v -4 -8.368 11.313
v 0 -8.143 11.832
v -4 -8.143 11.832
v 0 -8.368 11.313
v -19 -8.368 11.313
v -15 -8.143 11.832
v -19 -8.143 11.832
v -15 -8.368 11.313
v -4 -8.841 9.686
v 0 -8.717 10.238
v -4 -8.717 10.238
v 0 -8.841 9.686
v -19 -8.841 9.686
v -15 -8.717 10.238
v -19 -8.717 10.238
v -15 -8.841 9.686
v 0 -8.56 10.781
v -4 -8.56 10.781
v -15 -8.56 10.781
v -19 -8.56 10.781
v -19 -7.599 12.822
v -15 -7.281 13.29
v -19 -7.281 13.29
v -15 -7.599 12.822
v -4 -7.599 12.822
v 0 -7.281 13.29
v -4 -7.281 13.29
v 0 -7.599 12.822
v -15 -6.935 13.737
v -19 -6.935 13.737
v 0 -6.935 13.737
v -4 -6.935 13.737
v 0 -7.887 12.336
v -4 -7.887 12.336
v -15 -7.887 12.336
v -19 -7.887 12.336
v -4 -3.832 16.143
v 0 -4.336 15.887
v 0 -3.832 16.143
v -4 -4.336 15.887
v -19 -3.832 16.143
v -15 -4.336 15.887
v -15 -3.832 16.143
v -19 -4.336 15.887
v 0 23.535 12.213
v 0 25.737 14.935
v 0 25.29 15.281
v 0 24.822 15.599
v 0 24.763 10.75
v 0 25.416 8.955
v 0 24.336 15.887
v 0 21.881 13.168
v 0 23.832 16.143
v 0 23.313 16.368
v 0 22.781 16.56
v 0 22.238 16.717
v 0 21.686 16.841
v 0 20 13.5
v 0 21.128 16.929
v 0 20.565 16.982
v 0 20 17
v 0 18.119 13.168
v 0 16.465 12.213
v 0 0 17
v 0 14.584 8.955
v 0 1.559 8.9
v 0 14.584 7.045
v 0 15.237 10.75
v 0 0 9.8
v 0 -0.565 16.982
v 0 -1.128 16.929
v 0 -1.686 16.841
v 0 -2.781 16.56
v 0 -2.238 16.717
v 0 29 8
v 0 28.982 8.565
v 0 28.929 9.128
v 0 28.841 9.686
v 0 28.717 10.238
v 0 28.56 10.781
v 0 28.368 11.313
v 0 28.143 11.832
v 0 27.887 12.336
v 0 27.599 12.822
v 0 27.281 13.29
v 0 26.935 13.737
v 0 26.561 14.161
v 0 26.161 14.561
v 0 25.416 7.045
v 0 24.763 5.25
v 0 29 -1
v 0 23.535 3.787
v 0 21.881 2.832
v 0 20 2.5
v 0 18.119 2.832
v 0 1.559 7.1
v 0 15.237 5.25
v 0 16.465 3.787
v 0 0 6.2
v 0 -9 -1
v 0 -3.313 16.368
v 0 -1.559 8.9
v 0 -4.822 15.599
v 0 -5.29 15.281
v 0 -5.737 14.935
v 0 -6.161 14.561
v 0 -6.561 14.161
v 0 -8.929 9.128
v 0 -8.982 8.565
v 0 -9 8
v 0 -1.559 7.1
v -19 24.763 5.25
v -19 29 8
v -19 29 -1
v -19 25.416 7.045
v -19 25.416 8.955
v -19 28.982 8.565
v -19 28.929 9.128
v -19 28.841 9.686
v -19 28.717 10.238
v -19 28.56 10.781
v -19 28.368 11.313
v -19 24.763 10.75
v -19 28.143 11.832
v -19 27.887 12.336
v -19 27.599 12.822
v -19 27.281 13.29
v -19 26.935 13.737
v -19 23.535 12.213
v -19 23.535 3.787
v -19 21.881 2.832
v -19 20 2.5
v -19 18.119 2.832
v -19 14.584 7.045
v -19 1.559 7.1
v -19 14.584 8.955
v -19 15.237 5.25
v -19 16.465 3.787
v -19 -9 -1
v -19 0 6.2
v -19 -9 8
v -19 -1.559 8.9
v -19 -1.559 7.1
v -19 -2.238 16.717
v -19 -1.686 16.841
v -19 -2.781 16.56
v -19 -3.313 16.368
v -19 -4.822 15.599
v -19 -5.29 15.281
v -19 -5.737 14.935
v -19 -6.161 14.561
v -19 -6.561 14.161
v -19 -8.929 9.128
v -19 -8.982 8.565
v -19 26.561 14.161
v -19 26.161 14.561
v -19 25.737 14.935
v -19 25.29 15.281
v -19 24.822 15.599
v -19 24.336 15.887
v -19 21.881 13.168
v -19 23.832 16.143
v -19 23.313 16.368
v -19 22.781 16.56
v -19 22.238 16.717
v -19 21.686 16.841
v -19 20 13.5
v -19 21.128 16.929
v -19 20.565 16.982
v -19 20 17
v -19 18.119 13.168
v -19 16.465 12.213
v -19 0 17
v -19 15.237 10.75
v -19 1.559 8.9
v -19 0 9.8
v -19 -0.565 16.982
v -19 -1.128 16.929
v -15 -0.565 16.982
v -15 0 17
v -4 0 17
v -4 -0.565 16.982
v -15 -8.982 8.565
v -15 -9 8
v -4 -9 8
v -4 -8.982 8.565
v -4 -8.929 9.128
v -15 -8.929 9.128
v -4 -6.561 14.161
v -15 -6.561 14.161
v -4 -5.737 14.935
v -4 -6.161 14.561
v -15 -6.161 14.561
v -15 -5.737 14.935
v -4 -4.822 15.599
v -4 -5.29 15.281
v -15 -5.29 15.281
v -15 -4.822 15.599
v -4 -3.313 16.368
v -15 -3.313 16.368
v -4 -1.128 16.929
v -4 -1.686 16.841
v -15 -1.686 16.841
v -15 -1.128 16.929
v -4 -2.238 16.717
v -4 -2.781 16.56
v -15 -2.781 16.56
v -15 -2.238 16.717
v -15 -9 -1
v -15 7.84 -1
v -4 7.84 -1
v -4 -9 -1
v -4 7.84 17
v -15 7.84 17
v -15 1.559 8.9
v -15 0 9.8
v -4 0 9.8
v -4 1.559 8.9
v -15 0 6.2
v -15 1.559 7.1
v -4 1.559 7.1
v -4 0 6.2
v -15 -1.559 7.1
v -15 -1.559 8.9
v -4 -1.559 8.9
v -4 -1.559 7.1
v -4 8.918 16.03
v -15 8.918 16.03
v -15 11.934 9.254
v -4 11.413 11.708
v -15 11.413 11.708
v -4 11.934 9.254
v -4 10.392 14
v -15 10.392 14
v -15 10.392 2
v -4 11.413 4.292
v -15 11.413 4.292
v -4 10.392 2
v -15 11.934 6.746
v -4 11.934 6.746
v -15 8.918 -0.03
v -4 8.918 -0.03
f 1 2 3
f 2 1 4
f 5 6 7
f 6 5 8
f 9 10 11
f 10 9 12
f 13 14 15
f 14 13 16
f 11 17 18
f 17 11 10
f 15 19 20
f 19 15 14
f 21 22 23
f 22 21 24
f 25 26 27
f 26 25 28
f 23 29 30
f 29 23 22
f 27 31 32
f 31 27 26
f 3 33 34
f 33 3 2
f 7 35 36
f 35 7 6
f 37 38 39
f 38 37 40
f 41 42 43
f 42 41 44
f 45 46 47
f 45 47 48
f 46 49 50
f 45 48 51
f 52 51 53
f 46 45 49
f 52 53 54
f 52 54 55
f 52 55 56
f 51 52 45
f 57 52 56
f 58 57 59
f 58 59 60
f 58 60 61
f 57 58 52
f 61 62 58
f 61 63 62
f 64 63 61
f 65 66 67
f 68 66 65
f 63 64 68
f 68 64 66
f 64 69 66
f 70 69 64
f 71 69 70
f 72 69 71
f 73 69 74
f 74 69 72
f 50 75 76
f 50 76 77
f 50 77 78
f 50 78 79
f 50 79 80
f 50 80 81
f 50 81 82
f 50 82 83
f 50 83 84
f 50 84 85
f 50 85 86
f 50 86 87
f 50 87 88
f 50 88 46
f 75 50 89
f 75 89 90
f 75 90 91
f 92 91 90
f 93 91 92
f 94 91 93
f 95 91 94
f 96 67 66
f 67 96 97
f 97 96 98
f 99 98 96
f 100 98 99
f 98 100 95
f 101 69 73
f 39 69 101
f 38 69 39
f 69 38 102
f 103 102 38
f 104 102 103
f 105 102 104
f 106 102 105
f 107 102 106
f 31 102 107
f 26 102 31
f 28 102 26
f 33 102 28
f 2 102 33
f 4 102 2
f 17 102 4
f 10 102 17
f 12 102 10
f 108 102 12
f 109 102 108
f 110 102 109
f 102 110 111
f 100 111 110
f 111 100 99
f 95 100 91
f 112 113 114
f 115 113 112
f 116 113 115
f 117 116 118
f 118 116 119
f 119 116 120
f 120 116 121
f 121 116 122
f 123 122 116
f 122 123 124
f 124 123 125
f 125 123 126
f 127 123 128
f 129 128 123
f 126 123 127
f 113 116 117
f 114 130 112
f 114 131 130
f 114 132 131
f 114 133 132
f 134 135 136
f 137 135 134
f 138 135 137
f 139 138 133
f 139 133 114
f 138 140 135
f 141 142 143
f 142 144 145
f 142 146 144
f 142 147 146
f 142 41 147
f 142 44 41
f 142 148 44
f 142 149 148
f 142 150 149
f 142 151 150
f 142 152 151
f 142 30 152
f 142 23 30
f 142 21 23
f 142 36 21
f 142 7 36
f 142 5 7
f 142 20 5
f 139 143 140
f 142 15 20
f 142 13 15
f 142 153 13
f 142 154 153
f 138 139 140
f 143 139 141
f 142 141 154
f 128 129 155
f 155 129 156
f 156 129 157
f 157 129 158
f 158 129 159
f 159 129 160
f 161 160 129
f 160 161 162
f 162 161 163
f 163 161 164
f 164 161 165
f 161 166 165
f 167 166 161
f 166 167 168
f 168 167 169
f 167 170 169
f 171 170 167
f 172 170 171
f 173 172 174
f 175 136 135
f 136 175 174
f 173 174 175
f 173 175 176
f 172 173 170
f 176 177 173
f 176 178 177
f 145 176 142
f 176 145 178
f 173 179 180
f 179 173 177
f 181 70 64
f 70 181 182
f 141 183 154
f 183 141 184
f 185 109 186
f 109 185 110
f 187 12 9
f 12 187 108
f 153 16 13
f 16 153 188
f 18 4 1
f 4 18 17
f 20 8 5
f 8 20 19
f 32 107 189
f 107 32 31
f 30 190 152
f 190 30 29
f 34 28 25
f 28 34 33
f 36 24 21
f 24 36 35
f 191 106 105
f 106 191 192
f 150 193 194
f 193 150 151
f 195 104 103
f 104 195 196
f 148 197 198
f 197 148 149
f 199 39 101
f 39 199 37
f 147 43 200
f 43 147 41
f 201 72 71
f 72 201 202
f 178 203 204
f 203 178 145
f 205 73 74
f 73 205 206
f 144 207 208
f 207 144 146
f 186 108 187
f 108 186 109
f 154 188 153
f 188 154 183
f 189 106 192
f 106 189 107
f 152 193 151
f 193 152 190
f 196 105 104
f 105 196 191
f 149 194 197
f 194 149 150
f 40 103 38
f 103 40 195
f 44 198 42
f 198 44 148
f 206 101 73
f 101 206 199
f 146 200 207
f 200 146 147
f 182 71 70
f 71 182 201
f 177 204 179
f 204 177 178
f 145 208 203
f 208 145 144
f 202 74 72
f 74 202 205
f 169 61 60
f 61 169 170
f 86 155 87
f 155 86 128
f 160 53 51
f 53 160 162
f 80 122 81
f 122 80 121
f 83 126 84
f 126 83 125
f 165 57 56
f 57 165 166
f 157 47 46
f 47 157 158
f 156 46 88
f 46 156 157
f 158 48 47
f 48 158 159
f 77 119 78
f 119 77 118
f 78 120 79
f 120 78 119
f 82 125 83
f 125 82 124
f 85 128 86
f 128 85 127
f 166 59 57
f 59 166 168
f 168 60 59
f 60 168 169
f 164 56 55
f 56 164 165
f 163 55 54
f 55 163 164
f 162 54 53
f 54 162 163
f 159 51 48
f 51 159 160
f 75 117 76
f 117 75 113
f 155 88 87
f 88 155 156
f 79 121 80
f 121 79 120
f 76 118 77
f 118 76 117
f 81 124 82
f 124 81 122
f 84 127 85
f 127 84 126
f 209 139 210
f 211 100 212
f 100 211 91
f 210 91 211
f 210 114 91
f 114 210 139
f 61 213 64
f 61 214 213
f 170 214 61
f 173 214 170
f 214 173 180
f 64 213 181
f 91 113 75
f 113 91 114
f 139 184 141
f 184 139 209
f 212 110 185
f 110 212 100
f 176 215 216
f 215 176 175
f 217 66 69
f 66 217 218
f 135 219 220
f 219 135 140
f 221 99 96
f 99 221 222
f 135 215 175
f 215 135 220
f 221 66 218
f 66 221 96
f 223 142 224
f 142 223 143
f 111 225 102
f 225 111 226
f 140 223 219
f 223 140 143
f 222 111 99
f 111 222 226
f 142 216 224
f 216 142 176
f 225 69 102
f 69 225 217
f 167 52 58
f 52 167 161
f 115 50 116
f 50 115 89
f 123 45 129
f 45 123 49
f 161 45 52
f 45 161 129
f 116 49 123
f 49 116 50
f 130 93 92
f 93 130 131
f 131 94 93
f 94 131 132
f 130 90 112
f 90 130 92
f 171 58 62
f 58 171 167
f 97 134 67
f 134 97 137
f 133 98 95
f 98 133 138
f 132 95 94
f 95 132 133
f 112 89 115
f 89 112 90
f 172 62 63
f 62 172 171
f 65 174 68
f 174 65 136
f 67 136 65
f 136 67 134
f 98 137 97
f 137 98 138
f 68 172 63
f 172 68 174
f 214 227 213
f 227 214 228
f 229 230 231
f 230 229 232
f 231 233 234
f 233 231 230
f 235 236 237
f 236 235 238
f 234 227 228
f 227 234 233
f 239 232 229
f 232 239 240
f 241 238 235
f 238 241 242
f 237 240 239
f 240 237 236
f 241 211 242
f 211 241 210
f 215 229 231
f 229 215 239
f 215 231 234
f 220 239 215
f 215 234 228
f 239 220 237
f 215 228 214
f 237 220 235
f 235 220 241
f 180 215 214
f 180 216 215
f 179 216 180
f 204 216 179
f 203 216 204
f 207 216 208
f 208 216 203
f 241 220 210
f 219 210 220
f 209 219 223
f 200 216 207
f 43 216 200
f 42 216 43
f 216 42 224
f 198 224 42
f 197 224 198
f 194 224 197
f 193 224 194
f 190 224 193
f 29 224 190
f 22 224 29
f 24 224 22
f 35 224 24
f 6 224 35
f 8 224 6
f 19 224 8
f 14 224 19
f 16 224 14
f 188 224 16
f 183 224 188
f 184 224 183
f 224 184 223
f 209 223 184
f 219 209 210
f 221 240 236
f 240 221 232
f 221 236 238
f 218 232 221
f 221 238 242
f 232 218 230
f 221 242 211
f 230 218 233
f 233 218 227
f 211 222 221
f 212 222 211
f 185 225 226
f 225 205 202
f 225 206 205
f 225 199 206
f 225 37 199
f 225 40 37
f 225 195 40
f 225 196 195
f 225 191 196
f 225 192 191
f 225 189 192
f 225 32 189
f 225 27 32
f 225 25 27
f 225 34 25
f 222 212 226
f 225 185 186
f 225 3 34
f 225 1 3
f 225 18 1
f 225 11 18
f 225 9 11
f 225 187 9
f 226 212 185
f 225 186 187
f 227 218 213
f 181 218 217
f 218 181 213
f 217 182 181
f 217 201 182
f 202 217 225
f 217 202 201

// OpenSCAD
// PRUSA iteration3
// Y idler
// GNU GPL v3
// Josef Průša <iam@josefprusa.cz> and contributors
// http://www.reprap.org/wiki/Prusa_Mendel
// http://prusamendel.org


module y_idler_base(){
 translate(v = [0,0,0]) cylinder(h = 19, r=9, $fn=100);
 translate(v = [0,20,0]) cylinder(h = 19, r=9, $fn=100);
 translate(v = [0,10,9.5]) cube(size = [18,20,19], center=true);
 translate(v = [-4.5,10,9.5]) cube(size = [9,16+22,19], center=true);
}

module y_idler_holes(){
 translate(v = [0,0,-1]) cylinder(h = 120, r=1.8);
 translate(v = [0,20,-1]) cylinder(h = 25, r=5.5);
 translate(v = [0,0,4]) cylinder(h = 11, r=12);
 translate(v = [-4.5,-9,9.5]) cube(size = [9,9,11], center=true);
}

// Final part
module y_idler(){
 translate(v = [0,0,8])rotate([0,-90,0]) difference(){
  y_idler_base();
  y_idler_holes();
 }
}

y_idler();
